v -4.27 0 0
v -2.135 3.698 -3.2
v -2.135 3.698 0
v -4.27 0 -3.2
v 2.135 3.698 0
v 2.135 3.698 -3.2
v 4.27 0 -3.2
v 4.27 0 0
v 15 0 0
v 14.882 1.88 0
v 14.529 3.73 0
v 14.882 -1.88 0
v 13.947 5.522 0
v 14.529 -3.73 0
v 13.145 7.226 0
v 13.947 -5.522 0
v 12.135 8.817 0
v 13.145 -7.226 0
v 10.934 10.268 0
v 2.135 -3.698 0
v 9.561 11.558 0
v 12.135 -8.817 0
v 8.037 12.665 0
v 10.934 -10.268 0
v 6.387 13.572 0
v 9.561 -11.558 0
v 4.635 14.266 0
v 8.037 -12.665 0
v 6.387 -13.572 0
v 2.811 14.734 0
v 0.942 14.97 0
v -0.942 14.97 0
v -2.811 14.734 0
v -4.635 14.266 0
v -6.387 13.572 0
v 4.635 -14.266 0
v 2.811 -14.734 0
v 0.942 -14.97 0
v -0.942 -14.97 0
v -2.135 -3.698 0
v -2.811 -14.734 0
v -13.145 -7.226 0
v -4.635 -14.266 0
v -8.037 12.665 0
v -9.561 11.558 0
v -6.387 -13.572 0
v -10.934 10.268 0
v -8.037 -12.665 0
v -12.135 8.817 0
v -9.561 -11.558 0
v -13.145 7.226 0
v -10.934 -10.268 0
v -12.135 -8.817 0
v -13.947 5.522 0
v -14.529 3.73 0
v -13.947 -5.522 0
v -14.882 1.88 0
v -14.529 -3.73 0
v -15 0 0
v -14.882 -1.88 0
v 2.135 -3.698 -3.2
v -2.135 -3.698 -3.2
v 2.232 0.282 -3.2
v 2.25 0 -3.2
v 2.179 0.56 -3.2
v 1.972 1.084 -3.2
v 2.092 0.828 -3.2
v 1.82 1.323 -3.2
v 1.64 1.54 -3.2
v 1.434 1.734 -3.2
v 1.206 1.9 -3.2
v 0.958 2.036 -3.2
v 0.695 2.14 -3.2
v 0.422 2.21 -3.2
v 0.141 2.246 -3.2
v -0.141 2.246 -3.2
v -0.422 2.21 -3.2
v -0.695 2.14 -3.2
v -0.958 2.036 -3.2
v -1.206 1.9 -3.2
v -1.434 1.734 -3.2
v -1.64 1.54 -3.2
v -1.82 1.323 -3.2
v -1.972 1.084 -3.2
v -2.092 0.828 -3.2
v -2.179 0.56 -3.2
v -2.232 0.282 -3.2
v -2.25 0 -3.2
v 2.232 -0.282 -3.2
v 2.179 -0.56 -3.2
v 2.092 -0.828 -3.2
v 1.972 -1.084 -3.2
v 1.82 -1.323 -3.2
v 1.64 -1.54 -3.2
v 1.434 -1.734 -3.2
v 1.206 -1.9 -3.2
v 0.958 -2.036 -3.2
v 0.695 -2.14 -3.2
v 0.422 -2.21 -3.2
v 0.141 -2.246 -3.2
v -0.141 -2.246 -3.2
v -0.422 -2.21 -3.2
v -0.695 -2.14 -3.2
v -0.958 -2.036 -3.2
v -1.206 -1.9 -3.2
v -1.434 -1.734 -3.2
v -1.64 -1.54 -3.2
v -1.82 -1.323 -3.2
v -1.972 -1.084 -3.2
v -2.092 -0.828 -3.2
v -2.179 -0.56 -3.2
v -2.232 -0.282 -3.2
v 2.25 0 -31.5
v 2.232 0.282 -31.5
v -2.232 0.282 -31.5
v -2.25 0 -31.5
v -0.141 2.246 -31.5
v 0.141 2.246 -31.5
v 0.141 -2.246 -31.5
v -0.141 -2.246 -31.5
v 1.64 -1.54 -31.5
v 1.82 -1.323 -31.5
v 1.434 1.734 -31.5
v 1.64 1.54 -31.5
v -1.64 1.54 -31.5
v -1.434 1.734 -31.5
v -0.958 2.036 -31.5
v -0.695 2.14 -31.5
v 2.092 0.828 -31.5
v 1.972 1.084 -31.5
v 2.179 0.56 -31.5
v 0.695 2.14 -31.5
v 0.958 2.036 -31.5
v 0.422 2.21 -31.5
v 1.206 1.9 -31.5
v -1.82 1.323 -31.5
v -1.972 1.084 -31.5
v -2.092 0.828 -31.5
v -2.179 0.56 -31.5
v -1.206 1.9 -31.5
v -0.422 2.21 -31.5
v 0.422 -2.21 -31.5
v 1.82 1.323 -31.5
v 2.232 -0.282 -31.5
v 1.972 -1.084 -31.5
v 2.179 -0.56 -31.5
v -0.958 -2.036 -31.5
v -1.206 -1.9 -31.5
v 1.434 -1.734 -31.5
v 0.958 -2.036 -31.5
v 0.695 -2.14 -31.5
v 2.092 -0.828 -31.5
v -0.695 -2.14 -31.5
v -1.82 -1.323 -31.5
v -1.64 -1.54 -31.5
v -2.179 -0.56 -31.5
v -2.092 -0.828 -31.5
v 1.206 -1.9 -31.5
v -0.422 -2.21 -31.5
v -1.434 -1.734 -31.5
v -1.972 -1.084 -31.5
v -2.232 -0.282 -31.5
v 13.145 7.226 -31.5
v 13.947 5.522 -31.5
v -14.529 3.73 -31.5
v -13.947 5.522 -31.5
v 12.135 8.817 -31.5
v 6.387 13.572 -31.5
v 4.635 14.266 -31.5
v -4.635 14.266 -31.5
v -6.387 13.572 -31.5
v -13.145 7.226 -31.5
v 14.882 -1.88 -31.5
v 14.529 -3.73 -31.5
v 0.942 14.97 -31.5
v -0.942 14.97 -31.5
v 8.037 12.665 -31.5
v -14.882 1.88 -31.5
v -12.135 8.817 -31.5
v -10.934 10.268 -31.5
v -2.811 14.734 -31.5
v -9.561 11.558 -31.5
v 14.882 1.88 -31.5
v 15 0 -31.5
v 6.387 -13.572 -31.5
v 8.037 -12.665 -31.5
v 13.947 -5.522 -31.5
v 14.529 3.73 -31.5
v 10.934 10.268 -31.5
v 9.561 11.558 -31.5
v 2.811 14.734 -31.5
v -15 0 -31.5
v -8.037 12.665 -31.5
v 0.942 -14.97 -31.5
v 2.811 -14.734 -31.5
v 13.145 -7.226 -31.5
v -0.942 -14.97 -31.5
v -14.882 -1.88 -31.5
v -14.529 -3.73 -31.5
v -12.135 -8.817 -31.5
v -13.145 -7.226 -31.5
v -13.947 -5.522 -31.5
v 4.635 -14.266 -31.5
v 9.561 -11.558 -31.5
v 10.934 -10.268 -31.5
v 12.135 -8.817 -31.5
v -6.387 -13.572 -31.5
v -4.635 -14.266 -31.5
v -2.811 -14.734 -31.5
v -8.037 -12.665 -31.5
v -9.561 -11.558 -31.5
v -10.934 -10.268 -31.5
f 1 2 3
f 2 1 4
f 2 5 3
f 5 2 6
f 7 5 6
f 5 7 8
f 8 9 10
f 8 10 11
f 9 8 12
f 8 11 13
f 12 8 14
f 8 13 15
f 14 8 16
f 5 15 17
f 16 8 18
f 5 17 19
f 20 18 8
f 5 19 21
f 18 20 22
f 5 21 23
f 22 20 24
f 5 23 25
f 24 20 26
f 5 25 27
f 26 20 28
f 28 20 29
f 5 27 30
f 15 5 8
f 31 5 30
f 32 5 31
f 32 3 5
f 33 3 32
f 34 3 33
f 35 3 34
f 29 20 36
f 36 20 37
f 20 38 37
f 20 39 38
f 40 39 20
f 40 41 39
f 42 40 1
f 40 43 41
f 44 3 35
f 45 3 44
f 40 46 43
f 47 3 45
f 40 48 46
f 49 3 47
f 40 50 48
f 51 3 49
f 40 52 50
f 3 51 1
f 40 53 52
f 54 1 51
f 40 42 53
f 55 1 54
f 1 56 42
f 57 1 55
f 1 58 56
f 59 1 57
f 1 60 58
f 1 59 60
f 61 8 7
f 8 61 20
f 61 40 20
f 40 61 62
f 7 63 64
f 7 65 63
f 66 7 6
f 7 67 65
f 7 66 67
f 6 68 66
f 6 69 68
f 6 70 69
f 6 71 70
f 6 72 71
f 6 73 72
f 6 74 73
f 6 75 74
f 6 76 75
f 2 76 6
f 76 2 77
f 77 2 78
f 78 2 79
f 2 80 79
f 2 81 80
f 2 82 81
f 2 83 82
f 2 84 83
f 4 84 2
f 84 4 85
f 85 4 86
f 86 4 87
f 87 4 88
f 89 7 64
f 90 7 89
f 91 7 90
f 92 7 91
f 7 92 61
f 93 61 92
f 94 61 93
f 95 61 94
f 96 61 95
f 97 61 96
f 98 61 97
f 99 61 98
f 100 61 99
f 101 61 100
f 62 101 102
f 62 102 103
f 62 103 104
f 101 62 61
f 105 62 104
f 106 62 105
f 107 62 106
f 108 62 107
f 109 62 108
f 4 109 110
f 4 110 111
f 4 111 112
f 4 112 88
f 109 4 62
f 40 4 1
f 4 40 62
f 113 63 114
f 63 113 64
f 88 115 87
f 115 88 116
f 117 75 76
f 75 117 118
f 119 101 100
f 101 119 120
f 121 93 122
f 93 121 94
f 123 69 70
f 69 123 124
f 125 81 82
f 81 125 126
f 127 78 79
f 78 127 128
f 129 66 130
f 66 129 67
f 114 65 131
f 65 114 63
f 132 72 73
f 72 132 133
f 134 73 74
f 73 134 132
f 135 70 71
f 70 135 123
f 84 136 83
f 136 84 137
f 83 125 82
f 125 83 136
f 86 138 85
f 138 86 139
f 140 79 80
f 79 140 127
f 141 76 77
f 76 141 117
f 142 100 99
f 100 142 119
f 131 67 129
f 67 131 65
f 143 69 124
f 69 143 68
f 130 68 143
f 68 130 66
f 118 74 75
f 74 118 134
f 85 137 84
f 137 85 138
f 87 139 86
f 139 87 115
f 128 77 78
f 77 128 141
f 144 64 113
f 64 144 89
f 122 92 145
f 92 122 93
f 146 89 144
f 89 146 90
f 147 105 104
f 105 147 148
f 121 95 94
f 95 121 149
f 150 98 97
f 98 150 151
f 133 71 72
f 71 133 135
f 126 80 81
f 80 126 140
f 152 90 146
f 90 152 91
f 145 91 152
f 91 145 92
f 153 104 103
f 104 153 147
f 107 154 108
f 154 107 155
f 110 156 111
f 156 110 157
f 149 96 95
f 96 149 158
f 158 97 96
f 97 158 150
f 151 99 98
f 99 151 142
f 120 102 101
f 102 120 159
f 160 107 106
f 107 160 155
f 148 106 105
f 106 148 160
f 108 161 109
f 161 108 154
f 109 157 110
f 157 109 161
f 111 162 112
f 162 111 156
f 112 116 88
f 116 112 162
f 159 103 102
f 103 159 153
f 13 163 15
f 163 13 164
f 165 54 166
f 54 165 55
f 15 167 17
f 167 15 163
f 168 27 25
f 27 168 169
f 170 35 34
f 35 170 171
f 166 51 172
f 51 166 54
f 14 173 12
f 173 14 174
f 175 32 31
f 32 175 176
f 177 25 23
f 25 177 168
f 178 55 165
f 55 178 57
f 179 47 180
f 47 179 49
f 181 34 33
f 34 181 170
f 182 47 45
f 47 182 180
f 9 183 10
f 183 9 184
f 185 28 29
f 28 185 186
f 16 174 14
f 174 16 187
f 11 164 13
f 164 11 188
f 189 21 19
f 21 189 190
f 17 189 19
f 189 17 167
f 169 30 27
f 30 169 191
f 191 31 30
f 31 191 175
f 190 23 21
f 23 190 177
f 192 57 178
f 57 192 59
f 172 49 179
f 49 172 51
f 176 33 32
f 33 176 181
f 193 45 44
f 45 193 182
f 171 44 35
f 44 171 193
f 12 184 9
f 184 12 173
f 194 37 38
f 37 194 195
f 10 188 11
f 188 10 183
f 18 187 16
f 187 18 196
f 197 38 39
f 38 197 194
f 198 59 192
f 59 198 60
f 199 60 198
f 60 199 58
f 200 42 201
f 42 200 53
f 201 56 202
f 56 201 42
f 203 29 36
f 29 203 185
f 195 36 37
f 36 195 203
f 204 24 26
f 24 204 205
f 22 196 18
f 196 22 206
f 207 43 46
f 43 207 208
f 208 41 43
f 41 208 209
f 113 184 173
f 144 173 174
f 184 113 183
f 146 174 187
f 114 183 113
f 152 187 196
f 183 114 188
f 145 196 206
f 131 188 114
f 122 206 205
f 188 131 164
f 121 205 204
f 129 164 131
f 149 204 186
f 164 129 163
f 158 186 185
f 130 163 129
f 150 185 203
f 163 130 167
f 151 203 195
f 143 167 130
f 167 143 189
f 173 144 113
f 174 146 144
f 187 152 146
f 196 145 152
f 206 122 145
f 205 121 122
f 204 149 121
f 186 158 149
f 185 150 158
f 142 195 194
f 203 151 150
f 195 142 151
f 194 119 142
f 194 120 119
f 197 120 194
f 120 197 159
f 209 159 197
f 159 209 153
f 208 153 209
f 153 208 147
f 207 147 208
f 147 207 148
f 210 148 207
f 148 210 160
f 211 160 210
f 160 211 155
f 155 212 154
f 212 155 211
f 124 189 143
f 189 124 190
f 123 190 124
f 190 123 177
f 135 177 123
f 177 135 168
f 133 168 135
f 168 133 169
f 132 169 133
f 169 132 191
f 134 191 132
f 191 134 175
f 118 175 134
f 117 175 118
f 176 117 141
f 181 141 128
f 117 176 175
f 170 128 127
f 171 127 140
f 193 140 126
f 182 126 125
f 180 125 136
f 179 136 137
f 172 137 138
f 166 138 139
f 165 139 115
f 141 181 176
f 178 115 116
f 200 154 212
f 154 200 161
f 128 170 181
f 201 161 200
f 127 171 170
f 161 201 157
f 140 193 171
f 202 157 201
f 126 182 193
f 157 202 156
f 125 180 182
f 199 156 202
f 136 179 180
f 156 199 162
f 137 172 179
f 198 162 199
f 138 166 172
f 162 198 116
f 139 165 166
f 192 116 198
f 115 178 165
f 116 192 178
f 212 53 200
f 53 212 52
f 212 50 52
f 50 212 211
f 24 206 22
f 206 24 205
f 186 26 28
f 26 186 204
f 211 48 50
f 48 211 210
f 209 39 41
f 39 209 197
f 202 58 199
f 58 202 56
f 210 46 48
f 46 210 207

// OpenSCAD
$fn = 50;


difference() {
	union() {
		translate(v = [0, 0, -31.5000000000]) {
			cylinder(h = 31.5000000000, r = 15.0000000000);
		}
	}
	union() {
		translate(v = [0, 0, 0]) {
			rotate(a = [0, 0, 0]) {
				difference() {
					union() {
						translate(v = [0, 0, -3.2000000000]) {
							linear_extrude(height = 3.2000000000) {
								polygon(points = [[4.2698000000, 0.0000000000], [2.1349000000, 3.6977552691], [-2.1349000000, 3.6977552691], [-4.2698000000, 0.0000000000], [-2.1349000000, -3.6977552691], [2.1349000000, -3.6977552691]]);
							}
						}
					}
					union();
				}
			}
		}
		#translate(v = [0, 0, -100.0000000000]) {
			cylinder(h = 200, r = 2.2500000000);
		}
	}
}
